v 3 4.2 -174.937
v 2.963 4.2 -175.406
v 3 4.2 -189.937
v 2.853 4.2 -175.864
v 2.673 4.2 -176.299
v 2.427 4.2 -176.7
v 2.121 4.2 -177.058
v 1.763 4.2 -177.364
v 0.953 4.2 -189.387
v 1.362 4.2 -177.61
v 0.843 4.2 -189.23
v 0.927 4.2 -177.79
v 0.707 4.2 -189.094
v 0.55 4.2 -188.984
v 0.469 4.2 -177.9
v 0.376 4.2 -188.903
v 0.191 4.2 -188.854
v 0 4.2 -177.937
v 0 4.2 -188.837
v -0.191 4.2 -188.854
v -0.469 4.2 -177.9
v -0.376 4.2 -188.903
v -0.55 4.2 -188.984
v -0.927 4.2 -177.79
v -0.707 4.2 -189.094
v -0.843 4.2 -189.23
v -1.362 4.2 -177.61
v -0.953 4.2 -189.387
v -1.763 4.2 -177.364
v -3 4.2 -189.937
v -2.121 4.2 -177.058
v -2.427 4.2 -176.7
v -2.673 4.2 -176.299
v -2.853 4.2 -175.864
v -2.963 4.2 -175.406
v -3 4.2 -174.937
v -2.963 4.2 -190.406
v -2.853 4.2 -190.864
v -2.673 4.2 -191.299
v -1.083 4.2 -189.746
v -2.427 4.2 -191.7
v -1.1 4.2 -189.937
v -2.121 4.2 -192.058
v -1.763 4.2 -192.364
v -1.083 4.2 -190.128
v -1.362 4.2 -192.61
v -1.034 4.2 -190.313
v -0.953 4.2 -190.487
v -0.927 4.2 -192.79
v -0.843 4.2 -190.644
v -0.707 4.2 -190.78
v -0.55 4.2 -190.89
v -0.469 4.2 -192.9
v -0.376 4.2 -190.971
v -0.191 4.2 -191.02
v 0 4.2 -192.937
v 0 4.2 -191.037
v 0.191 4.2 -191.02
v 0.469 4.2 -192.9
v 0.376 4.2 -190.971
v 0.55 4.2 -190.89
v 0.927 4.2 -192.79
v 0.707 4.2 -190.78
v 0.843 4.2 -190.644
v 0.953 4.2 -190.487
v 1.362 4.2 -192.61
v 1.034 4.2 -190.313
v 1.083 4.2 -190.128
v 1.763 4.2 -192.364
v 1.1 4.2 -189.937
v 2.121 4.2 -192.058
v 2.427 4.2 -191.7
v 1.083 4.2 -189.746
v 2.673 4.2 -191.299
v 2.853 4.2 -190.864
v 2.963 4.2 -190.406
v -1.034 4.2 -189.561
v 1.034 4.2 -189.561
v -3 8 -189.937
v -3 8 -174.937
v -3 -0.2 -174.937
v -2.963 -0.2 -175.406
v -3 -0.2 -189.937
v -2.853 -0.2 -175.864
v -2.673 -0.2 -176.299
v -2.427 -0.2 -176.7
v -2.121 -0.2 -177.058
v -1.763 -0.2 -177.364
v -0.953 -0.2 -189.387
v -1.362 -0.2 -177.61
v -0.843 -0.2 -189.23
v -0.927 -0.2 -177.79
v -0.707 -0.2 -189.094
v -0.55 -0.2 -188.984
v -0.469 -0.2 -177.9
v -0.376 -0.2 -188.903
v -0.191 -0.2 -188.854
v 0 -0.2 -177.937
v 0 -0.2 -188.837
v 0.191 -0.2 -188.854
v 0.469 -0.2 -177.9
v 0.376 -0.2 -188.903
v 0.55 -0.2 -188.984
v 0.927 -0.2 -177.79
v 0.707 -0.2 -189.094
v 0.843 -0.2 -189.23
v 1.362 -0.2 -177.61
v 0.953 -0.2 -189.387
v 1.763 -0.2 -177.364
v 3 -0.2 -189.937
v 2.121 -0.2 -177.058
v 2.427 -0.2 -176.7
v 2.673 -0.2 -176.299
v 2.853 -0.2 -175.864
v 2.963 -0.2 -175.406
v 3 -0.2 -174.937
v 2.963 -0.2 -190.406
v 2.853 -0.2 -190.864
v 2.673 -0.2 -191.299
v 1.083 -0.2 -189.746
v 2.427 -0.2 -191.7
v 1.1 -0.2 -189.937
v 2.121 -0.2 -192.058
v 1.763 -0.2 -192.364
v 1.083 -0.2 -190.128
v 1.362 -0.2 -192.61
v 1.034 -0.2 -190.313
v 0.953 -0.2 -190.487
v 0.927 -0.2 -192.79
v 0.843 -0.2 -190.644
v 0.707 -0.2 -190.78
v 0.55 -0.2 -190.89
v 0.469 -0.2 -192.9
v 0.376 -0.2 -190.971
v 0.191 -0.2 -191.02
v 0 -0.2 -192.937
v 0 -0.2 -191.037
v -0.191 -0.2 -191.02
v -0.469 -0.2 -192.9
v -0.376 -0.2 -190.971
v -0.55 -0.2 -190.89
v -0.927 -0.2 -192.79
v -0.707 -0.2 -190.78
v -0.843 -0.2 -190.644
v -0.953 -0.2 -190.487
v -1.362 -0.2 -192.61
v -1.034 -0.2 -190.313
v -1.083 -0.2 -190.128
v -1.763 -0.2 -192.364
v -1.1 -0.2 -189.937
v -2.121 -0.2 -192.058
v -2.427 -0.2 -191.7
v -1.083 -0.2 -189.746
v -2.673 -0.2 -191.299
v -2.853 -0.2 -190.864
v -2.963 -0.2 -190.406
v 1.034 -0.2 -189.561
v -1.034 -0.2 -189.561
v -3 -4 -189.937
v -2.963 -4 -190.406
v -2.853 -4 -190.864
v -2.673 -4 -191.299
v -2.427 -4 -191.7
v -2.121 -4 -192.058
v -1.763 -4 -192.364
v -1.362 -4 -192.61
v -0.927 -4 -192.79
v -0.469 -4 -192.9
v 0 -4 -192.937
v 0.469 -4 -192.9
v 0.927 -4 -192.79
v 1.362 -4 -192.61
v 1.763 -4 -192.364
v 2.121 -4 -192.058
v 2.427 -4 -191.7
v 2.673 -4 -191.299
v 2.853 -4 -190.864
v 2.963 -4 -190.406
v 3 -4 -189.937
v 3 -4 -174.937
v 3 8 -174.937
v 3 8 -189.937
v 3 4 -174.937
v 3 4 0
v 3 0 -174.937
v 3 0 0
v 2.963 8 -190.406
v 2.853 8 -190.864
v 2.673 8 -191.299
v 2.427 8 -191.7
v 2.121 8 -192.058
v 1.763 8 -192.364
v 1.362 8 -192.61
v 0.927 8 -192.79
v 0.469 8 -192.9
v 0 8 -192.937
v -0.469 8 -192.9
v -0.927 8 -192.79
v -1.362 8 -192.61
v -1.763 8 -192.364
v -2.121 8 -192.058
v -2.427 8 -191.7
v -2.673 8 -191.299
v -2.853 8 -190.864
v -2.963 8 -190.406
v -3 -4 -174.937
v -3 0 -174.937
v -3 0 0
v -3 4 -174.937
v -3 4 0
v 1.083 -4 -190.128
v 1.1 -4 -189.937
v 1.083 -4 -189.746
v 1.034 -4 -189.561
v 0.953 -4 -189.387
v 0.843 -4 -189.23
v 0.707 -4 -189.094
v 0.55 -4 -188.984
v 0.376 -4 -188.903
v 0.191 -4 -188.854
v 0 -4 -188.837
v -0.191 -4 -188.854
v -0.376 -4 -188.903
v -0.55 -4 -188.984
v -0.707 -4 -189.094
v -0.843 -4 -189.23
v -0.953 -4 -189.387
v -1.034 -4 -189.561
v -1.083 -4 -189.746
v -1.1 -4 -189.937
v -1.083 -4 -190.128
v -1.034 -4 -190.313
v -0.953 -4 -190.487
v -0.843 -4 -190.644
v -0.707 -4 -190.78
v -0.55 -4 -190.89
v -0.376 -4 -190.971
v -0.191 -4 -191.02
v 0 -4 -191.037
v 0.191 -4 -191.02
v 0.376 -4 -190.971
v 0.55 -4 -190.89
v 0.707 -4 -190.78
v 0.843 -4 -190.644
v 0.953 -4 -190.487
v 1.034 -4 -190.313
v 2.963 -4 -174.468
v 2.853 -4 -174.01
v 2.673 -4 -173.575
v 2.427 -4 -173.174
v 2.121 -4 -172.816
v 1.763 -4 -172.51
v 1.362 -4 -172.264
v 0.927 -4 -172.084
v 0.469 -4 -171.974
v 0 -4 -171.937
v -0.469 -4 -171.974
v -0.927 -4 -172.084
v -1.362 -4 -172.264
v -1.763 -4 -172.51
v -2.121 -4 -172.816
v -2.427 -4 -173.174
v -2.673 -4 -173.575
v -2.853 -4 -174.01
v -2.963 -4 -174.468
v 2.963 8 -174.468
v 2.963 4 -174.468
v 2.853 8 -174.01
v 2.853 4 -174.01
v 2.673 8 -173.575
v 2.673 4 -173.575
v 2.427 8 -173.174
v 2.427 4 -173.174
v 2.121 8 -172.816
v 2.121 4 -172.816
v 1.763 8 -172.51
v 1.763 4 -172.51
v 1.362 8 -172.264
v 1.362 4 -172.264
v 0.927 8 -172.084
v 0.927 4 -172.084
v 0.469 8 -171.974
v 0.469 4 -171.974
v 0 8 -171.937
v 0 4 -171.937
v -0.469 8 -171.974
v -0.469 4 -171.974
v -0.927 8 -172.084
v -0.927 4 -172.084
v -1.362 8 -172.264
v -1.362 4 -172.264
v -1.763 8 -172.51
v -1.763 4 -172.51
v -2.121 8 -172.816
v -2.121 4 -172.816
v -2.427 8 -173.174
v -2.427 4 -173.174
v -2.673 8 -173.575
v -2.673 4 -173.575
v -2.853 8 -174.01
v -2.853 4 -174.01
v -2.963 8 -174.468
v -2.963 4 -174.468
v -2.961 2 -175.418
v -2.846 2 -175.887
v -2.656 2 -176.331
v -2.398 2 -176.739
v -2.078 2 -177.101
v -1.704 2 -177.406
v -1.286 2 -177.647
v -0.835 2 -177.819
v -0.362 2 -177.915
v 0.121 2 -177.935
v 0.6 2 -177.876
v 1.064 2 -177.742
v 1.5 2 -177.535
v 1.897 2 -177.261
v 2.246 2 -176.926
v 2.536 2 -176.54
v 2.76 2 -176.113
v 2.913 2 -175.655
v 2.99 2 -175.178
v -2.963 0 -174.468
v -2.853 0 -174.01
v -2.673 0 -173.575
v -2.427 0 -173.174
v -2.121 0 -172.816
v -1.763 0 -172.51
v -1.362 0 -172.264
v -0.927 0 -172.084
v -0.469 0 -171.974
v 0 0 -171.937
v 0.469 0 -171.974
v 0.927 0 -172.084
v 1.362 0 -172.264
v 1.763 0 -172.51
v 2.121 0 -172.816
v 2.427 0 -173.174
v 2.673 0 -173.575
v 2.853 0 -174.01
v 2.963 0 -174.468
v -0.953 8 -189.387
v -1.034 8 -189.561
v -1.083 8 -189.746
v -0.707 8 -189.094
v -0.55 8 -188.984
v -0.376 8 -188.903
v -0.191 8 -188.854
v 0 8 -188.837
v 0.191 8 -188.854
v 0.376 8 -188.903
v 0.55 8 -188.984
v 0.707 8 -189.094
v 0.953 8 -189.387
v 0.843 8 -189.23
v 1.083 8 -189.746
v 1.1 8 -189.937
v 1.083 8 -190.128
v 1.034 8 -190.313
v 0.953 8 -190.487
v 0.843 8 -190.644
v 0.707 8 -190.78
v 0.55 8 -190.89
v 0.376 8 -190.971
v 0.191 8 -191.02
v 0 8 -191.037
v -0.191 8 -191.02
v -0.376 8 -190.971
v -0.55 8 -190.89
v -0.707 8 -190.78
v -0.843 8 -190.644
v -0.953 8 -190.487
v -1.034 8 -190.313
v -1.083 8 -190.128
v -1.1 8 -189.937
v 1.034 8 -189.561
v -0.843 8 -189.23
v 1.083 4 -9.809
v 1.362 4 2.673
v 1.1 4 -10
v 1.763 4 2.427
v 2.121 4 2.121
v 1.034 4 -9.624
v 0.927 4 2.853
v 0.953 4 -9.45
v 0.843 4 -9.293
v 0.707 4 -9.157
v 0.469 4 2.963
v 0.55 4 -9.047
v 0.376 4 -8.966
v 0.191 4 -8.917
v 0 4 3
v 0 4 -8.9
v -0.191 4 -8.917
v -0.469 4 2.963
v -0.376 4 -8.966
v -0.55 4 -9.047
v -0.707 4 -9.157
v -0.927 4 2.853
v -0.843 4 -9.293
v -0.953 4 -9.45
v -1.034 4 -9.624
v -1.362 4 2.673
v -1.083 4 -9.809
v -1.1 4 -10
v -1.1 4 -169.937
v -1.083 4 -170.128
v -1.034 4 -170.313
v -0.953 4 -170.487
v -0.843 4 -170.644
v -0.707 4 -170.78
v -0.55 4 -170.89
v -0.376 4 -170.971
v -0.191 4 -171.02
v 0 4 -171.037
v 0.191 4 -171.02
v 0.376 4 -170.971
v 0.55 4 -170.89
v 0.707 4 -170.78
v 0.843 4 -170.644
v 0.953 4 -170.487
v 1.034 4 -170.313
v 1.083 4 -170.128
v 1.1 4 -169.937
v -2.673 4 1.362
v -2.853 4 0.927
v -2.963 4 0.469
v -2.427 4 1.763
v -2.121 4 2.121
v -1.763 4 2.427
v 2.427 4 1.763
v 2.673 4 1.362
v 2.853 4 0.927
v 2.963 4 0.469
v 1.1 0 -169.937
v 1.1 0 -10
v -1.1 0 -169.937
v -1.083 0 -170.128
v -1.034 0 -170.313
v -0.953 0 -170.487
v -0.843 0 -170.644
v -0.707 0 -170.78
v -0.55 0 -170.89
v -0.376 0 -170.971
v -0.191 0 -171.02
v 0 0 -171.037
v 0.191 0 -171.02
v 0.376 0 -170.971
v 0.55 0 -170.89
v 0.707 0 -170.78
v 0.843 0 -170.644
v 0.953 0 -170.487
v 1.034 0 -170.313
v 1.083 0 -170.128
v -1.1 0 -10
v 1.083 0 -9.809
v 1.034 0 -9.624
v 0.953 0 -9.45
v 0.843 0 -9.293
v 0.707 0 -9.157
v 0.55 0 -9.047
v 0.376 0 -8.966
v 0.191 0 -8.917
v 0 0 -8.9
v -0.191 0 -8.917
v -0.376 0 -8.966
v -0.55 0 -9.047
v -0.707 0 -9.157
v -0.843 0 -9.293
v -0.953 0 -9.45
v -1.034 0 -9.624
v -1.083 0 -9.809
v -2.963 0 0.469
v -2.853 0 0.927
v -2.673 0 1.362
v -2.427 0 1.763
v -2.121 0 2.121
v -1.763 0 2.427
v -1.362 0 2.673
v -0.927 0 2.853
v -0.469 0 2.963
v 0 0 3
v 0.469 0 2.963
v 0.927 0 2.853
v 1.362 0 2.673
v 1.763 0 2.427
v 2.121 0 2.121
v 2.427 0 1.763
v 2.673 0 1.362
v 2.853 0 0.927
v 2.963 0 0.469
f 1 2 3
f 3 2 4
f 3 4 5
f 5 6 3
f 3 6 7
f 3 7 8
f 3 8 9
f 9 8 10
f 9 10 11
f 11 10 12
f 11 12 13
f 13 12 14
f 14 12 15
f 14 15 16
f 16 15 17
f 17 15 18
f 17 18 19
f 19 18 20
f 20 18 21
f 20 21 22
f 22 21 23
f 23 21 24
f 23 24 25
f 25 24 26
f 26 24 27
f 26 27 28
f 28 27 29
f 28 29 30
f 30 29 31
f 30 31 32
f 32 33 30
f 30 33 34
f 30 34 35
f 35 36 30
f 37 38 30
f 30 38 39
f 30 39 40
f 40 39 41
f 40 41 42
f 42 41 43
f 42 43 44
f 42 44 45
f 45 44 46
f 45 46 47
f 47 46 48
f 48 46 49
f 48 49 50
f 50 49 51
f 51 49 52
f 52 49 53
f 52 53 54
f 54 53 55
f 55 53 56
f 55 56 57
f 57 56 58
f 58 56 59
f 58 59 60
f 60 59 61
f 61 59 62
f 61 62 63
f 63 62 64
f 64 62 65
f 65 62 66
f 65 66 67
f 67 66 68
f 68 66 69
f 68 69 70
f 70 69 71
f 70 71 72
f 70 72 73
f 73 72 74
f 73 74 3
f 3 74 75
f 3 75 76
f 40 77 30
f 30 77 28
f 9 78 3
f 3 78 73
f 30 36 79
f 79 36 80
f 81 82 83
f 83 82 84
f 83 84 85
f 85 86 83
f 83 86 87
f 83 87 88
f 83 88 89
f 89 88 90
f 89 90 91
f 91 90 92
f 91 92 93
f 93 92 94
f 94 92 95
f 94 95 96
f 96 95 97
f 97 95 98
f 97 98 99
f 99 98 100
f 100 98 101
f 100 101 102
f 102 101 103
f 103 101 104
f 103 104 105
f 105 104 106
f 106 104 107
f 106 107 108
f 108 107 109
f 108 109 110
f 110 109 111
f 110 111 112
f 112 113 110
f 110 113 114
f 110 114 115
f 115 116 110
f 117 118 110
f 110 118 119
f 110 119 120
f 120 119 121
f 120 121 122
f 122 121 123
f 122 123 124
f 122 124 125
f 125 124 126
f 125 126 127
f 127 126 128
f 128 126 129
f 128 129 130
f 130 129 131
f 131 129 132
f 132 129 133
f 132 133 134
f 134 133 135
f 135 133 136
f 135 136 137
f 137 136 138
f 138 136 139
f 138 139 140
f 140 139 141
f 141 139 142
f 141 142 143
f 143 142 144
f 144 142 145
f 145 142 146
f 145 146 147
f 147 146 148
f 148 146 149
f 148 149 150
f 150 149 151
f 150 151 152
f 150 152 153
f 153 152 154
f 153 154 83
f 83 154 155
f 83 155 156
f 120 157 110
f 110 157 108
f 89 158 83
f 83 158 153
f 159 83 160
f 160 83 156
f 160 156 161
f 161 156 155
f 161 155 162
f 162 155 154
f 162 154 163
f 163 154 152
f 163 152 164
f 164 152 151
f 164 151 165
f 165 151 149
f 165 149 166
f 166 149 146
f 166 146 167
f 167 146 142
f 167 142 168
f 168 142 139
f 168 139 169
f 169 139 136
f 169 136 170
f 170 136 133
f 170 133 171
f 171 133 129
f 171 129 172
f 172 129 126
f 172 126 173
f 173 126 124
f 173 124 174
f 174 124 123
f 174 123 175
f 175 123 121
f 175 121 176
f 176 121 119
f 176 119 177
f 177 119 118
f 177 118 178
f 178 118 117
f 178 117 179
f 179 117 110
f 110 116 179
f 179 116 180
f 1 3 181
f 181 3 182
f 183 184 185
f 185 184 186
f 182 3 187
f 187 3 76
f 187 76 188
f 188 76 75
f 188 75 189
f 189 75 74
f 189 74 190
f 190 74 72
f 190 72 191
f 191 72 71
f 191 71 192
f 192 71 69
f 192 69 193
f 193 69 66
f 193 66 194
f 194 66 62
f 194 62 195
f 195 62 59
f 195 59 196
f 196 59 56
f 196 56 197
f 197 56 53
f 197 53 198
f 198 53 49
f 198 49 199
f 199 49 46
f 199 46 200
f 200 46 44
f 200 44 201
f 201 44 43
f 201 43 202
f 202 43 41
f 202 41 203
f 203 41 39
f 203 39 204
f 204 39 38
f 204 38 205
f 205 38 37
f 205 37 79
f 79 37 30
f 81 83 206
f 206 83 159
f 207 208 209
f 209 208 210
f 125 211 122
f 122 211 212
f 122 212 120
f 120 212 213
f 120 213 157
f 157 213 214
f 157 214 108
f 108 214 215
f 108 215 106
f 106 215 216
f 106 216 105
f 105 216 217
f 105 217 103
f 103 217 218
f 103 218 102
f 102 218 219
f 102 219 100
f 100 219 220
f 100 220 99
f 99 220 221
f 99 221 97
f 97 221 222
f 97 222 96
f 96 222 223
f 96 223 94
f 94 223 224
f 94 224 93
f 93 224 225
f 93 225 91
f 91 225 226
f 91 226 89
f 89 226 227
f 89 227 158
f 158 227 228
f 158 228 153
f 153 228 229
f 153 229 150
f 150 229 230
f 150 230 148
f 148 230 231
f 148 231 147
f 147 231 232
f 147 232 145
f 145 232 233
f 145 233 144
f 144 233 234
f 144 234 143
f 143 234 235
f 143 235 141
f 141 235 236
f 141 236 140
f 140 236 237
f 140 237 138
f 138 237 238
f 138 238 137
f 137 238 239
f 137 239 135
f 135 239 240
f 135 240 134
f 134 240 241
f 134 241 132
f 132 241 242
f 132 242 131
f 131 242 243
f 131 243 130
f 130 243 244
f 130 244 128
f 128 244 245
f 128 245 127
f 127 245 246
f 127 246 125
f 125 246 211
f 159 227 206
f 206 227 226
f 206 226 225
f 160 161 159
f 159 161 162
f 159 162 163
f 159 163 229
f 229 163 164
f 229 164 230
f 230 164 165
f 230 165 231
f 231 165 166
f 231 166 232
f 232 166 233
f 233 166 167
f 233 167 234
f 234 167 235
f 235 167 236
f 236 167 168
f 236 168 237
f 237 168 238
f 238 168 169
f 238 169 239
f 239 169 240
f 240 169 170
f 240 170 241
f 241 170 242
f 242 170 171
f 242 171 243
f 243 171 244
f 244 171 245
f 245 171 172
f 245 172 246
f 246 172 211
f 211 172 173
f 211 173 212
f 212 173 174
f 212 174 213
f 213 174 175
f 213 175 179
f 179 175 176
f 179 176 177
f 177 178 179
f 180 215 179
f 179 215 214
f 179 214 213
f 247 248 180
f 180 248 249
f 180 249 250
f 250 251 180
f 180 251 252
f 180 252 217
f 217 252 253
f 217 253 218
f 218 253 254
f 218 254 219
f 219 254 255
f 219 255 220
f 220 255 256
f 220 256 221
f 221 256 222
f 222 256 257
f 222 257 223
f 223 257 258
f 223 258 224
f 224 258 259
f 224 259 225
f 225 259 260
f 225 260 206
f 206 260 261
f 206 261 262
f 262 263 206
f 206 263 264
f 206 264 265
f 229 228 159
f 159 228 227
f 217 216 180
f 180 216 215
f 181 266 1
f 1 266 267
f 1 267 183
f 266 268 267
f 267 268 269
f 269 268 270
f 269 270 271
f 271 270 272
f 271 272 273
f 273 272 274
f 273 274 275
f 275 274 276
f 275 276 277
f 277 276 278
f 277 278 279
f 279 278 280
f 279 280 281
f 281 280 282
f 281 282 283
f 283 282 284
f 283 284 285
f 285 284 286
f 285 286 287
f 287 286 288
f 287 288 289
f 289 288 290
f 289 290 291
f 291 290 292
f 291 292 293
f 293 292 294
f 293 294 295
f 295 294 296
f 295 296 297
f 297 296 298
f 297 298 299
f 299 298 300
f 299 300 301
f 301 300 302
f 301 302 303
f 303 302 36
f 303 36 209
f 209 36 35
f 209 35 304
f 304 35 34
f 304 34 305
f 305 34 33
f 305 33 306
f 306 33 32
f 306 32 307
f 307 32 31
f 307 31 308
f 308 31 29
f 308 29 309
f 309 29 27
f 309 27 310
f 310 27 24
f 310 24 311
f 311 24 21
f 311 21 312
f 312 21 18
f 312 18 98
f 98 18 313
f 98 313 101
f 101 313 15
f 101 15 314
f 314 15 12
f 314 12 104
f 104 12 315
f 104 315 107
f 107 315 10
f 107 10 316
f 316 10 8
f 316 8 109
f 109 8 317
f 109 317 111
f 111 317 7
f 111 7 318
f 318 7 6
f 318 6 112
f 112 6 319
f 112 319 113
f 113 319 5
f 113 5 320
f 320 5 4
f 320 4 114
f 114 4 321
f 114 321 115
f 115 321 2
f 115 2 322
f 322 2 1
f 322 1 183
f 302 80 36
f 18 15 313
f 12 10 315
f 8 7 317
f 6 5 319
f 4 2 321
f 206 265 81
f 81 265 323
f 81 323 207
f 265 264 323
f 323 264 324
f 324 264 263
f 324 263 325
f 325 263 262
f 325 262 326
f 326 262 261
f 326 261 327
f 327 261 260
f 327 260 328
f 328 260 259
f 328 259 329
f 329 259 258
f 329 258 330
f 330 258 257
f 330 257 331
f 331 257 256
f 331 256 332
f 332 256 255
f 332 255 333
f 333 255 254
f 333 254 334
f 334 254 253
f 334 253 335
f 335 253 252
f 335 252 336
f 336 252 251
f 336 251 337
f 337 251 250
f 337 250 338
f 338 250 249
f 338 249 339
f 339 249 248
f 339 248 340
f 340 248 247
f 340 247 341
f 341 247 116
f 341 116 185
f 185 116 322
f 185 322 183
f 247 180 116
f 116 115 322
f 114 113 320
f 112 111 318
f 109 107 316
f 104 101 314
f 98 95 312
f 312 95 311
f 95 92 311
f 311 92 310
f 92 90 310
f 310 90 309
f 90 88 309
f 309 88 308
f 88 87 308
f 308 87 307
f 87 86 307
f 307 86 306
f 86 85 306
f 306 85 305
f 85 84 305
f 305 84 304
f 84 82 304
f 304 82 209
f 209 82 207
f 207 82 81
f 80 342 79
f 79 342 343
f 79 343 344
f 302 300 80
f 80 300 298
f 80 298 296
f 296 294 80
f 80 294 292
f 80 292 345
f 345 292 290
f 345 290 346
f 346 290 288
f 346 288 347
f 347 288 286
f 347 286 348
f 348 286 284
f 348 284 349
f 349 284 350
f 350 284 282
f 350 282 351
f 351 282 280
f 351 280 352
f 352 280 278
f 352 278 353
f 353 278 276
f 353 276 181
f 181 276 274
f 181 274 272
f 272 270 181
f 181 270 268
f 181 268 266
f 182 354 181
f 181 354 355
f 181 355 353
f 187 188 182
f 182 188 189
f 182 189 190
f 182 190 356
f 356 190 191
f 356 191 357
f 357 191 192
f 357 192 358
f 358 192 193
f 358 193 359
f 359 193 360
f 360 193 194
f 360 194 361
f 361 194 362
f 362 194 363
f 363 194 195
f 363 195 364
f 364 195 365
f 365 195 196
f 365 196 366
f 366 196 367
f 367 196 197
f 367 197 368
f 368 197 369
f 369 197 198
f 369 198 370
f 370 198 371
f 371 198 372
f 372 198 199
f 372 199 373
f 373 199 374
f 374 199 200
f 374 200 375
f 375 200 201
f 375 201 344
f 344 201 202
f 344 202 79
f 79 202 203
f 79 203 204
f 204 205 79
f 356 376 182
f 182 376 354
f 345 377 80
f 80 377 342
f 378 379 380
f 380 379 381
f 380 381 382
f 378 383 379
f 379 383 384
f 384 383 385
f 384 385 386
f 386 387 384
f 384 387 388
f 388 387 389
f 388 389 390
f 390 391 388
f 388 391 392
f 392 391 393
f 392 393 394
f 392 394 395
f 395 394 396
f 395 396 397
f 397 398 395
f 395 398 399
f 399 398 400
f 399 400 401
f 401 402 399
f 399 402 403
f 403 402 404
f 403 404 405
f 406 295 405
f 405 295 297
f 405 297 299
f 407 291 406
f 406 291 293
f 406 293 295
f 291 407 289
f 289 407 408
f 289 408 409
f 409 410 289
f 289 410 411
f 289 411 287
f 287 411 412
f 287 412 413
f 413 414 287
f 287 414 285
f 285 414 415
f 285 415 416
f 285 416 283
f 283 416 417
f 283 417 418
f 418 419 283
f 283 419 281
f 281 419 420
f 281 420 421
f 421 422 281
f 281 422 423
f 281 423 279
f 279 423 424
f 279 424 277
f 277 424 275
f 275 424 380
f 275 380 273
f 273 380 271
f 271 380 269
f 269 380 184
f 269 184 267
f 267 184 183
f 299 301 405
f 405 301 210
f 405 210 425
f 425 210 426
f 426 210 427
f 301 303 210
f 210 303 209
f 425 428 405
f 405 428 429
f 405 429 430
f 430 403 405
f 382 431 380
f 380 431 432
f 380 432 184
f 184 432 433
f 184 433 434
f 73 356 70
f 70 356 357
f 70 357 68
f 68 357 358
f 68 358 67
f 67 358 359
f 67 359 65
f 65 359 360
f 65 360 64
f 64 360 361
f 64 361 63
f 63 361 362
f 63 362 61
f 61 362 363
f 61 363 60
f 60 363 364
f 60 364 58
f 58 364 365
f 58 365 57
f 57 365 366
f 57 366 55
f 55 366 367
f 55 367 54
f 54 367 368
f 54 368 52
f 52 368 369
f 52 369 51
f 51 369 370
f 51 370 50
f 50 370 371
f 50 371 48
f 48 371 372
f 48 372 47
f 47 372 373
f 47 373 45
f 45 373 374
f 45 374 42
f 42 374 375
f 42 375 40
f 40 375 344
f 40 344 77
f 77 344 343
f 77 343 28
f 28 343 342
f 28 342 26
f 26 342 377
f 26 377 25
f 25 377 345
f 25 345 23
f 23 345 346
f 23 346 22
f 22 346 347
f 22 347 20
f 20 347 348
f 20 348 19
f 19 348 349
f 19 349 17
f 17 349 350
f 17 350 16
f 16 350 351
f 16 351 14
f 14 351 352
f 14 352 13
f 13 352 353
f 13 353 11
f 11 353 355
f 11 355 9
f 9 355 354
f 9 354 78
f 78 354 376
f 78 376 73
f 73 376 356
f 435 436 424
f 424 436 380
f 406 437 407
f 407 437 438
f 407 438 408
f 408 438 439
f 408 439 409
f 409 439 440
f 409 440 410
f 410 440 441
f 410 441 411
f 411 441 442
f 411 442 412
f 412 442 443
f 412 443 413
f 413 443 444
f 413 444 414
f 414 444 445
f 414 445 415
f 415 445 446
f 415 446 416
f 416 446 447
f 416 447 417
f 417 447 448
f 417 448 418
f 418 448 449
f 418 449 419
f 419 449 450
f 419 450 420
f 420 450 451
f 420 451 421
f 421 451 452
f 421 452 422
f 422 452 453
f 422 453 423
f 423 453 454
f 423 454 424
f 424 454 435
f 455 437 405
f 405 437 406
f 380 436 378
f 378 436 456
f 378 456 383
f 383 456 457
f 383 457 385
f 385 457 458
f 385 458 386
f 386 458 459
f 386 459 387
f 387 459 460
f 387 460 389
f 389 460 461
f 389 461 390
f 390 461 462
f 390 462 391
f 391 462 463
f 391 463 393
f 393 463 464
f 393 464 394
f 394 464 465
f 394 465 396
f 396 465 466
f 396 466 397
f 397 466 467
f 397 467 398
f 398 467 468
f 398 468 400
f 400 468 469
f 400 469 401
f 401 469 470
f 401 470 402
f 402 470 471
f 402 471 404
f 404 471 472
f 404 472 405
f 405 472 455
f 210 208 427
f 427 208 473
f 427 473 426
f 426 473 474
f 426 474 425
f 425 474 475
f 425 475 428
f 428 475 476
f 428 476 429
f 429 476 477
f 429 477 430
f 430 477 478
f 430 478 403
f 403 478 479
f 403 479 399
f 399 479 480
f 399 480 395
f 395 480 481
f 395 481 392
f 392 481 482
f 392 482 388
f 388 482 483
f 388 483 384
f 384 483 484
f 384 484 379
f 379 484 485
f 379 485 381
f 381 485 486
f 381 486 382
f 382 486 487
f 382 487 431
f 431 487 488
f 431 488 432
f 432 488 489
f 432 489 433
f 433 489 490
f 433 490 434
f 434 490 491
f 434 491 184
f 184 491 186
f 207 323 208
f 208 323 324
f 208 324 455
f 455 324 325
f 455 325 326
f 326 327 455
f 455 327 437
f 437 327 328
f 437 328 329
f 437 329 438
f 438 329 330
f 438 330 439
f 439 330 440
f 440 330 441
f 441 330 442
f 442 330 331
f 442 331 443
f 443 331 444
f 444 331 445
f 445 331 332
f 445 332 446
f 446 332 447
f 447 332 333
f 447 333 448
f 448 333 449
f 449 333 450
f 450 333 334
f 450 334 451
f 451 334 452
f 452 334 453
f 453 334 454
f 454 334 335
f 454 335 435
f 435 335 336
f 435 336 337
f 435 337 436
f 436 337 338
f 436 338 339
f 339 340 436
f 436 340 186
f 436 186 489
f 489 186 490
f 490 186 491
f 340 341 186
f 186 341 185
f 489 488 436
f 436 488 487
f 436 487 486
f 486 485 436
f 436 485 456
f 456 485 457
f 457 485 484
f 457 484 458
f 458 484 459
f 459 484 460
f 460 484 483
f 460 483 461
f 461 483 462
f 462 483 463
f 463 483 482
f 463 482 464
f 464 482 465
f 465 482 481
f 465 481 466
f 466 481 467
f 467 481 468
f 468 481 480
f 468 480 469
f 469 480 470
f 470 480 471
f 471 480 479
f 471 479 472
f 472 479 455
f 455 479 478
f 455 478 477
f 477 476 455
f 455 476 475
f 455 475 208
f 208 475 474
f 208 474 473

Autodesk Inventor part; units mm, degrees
ref_plane "XZ Plane" through (0, 0, 0) normal (0, 1, 0) x (-1, 0, 0)
ref_plane "XY Plane" through (0, 0, 0) normal (0, 0, 1) x (1, 0, 0)
sketch "Sketch1" plane through (0, 0, 0) normal (0, 1, 0) x (-1, 0, 0)
  line L0 (0, 0) -> (0, -189.937) construction
  line L1 (3, 0) -> (3, -189.937)
  line L2 (-3, -189.937) -> (-3, 0)
  arc A0 (3, 0) -> (-3, 0) centre (0, 0) ccw
  arc A1 (-3, -189.937) -> (3, -189.937) centre (0, -189.937) ccw
  circle A2 centre (0, -189.937) radius 1.1
  line L3 (0, -10) -> (0, -169.937) construction
  line L4 (-1.1, -10) -> (-1.1, -169.937)
  line L5 (1.1, -169.937) -> (1.1, -10)
  arc A3 (1.1, -10) -> (-1.1, -10) centre (0, -10) ccw
  arc A4 (-1.1, -169.937) -> (1.1, -169.937) centre (0, -169.937) ccw
  point P0 (0, -94.9685)
  point P1 (0, -89.9685)
  dimension "d1" = 2.2
  dimension "d2" = 6
  dimension "d3" = 189.937
  dimension "d16" = 2.2
  dimension "d17" = 20
  dimension "d18" = 10
extrude "Extrusion1" add sketch "Sketch1" along normal blind 4
sketch "Sketch2" plane through (0, 4, 0) normal (0, 1, 0) x (1, 0, 0)
  line L0 (-3, 189.937) -> (-3, 0) projected
  arc A0 (-3, 0) -> (3, 0) centre (0, 0) ccw projected
  line L1 (3, 0) -> (3, 189.937) projected
  arc A1 (3, 189.937) -> (-3, 189.937) centre (0, 189.937) ccw projected
  arc A2 (-1.1, 10) -> (1.1, 10) centre (0, 10) ccw projected
  line L2 (-1.1, 10) -> (-1.1, 169.937) projected
  arc A3 (1.1, 169.937) -> (-1.1, 169.937) centre (0, 169.937) ccw projected
  line L3 (1.1, 169.937) -> (1.1, 10) projected
  circle A4 centre (0, 189.937) radius 1.1 projected
  line L4 (-3, 189.937) -> (-3, 0) projected
  line L5 (3, 0) -> (3, 189.937) projected
  circle A5 centre (0, 174.937) radius 3
  point P0 (-3, 174.937)
  point P1 (3, 174.937)
  dimension "d20" = 15
  dimension "d21" = 6
extrude "Extrusion2" add sketch "Sketch2" along normal blind 4 contours A1 L1 A5 L0 | A5
sketch "Sketch3" plane through (0, 0, 0) normal (0, -1, 0) x (1, 0, 0)
  line L0 (-3, -189.937) -> (-3, 0) projected
  arc A0 (-3, -189.937) -> (3, -189.937) centre (0, -189.937) ccw projected
  line L1 (3, 0) -> (3, -189.937) projected
  arc A1 (3, 0) -> (-3, 0) centre (0, 0) ccw projected
  arc A2 (1.1, -10) -> (-1.1, -10) centre (0, -10) ccw projected
  line L2 (1.1, -169.937) -> (1.1, -10) projected
  arc A3 (-1.1, -169.937) -> (1.1, -169.937) centre (0, -169.937) ccw projected
  line L3 (-1.1, -10) -> (-1.1, -169.937) projected
  circle A4 centre (0, -189.937) radius 1.1 projected
  circle A5 centre (0, -174.937) radius 3
  point P0 (3, -174.937)
  point P1 (-3, -174.937)
  dimension "d24" = 6
  dimension "d25" = 15
extrude "Extrusion3" add sketch "Sketch3" along normal blind 4 contours L0 A5 L1 A0 | A5
extrude "Extrusion4" cut sketch "Sketch2" against normal blind 4 contours A1 L1 A5 L0
sketch "Sketch4" plane through (0, 0, 0) normal (0, 1, 0) x (1, 0, 0)
  line L0 (-3, 174.937) -> (-3, 189.937) projected
  arc A0 (3, 174.937) -> (-3, 174.937) centre (0, 174.937) ccw projected
  line L1 (3, 189.937) -> (3, 174.937) projected
  arc A1 (3, 189.937) -> (-3, 189.937) centre (0, 189.937) ccw projected
  circle A2 centre (0, 189.937) radius 1.1 projected
  point P0 (0, 0)
extrude "Extrusion5" cut sketch "Sketch4" against normal blind 0.2
sketch "Sketch5" plane through (0, 4, 0) normal (0, -1, 0) x (1, 0, 0)
  line L0 (-3, -189.937) -> (-3, -174.937) projected
  arc A0 (-3, -189.937) -> (3, -189.937) centre (0, -189.937) ccw projected
  line L1 (3, -174.937) -> (3, -189.937) projected
  arc A1 (-3, -174.937) -> (3, -174.937) centre (0, -174.937) ccw projected
  circle A2 centre (0, -189.937) radius 1.1 projected
  point P0 (0, 0)
extrude "Extrusion6" cut sketch "Sketch5" against normal blind 0.2
